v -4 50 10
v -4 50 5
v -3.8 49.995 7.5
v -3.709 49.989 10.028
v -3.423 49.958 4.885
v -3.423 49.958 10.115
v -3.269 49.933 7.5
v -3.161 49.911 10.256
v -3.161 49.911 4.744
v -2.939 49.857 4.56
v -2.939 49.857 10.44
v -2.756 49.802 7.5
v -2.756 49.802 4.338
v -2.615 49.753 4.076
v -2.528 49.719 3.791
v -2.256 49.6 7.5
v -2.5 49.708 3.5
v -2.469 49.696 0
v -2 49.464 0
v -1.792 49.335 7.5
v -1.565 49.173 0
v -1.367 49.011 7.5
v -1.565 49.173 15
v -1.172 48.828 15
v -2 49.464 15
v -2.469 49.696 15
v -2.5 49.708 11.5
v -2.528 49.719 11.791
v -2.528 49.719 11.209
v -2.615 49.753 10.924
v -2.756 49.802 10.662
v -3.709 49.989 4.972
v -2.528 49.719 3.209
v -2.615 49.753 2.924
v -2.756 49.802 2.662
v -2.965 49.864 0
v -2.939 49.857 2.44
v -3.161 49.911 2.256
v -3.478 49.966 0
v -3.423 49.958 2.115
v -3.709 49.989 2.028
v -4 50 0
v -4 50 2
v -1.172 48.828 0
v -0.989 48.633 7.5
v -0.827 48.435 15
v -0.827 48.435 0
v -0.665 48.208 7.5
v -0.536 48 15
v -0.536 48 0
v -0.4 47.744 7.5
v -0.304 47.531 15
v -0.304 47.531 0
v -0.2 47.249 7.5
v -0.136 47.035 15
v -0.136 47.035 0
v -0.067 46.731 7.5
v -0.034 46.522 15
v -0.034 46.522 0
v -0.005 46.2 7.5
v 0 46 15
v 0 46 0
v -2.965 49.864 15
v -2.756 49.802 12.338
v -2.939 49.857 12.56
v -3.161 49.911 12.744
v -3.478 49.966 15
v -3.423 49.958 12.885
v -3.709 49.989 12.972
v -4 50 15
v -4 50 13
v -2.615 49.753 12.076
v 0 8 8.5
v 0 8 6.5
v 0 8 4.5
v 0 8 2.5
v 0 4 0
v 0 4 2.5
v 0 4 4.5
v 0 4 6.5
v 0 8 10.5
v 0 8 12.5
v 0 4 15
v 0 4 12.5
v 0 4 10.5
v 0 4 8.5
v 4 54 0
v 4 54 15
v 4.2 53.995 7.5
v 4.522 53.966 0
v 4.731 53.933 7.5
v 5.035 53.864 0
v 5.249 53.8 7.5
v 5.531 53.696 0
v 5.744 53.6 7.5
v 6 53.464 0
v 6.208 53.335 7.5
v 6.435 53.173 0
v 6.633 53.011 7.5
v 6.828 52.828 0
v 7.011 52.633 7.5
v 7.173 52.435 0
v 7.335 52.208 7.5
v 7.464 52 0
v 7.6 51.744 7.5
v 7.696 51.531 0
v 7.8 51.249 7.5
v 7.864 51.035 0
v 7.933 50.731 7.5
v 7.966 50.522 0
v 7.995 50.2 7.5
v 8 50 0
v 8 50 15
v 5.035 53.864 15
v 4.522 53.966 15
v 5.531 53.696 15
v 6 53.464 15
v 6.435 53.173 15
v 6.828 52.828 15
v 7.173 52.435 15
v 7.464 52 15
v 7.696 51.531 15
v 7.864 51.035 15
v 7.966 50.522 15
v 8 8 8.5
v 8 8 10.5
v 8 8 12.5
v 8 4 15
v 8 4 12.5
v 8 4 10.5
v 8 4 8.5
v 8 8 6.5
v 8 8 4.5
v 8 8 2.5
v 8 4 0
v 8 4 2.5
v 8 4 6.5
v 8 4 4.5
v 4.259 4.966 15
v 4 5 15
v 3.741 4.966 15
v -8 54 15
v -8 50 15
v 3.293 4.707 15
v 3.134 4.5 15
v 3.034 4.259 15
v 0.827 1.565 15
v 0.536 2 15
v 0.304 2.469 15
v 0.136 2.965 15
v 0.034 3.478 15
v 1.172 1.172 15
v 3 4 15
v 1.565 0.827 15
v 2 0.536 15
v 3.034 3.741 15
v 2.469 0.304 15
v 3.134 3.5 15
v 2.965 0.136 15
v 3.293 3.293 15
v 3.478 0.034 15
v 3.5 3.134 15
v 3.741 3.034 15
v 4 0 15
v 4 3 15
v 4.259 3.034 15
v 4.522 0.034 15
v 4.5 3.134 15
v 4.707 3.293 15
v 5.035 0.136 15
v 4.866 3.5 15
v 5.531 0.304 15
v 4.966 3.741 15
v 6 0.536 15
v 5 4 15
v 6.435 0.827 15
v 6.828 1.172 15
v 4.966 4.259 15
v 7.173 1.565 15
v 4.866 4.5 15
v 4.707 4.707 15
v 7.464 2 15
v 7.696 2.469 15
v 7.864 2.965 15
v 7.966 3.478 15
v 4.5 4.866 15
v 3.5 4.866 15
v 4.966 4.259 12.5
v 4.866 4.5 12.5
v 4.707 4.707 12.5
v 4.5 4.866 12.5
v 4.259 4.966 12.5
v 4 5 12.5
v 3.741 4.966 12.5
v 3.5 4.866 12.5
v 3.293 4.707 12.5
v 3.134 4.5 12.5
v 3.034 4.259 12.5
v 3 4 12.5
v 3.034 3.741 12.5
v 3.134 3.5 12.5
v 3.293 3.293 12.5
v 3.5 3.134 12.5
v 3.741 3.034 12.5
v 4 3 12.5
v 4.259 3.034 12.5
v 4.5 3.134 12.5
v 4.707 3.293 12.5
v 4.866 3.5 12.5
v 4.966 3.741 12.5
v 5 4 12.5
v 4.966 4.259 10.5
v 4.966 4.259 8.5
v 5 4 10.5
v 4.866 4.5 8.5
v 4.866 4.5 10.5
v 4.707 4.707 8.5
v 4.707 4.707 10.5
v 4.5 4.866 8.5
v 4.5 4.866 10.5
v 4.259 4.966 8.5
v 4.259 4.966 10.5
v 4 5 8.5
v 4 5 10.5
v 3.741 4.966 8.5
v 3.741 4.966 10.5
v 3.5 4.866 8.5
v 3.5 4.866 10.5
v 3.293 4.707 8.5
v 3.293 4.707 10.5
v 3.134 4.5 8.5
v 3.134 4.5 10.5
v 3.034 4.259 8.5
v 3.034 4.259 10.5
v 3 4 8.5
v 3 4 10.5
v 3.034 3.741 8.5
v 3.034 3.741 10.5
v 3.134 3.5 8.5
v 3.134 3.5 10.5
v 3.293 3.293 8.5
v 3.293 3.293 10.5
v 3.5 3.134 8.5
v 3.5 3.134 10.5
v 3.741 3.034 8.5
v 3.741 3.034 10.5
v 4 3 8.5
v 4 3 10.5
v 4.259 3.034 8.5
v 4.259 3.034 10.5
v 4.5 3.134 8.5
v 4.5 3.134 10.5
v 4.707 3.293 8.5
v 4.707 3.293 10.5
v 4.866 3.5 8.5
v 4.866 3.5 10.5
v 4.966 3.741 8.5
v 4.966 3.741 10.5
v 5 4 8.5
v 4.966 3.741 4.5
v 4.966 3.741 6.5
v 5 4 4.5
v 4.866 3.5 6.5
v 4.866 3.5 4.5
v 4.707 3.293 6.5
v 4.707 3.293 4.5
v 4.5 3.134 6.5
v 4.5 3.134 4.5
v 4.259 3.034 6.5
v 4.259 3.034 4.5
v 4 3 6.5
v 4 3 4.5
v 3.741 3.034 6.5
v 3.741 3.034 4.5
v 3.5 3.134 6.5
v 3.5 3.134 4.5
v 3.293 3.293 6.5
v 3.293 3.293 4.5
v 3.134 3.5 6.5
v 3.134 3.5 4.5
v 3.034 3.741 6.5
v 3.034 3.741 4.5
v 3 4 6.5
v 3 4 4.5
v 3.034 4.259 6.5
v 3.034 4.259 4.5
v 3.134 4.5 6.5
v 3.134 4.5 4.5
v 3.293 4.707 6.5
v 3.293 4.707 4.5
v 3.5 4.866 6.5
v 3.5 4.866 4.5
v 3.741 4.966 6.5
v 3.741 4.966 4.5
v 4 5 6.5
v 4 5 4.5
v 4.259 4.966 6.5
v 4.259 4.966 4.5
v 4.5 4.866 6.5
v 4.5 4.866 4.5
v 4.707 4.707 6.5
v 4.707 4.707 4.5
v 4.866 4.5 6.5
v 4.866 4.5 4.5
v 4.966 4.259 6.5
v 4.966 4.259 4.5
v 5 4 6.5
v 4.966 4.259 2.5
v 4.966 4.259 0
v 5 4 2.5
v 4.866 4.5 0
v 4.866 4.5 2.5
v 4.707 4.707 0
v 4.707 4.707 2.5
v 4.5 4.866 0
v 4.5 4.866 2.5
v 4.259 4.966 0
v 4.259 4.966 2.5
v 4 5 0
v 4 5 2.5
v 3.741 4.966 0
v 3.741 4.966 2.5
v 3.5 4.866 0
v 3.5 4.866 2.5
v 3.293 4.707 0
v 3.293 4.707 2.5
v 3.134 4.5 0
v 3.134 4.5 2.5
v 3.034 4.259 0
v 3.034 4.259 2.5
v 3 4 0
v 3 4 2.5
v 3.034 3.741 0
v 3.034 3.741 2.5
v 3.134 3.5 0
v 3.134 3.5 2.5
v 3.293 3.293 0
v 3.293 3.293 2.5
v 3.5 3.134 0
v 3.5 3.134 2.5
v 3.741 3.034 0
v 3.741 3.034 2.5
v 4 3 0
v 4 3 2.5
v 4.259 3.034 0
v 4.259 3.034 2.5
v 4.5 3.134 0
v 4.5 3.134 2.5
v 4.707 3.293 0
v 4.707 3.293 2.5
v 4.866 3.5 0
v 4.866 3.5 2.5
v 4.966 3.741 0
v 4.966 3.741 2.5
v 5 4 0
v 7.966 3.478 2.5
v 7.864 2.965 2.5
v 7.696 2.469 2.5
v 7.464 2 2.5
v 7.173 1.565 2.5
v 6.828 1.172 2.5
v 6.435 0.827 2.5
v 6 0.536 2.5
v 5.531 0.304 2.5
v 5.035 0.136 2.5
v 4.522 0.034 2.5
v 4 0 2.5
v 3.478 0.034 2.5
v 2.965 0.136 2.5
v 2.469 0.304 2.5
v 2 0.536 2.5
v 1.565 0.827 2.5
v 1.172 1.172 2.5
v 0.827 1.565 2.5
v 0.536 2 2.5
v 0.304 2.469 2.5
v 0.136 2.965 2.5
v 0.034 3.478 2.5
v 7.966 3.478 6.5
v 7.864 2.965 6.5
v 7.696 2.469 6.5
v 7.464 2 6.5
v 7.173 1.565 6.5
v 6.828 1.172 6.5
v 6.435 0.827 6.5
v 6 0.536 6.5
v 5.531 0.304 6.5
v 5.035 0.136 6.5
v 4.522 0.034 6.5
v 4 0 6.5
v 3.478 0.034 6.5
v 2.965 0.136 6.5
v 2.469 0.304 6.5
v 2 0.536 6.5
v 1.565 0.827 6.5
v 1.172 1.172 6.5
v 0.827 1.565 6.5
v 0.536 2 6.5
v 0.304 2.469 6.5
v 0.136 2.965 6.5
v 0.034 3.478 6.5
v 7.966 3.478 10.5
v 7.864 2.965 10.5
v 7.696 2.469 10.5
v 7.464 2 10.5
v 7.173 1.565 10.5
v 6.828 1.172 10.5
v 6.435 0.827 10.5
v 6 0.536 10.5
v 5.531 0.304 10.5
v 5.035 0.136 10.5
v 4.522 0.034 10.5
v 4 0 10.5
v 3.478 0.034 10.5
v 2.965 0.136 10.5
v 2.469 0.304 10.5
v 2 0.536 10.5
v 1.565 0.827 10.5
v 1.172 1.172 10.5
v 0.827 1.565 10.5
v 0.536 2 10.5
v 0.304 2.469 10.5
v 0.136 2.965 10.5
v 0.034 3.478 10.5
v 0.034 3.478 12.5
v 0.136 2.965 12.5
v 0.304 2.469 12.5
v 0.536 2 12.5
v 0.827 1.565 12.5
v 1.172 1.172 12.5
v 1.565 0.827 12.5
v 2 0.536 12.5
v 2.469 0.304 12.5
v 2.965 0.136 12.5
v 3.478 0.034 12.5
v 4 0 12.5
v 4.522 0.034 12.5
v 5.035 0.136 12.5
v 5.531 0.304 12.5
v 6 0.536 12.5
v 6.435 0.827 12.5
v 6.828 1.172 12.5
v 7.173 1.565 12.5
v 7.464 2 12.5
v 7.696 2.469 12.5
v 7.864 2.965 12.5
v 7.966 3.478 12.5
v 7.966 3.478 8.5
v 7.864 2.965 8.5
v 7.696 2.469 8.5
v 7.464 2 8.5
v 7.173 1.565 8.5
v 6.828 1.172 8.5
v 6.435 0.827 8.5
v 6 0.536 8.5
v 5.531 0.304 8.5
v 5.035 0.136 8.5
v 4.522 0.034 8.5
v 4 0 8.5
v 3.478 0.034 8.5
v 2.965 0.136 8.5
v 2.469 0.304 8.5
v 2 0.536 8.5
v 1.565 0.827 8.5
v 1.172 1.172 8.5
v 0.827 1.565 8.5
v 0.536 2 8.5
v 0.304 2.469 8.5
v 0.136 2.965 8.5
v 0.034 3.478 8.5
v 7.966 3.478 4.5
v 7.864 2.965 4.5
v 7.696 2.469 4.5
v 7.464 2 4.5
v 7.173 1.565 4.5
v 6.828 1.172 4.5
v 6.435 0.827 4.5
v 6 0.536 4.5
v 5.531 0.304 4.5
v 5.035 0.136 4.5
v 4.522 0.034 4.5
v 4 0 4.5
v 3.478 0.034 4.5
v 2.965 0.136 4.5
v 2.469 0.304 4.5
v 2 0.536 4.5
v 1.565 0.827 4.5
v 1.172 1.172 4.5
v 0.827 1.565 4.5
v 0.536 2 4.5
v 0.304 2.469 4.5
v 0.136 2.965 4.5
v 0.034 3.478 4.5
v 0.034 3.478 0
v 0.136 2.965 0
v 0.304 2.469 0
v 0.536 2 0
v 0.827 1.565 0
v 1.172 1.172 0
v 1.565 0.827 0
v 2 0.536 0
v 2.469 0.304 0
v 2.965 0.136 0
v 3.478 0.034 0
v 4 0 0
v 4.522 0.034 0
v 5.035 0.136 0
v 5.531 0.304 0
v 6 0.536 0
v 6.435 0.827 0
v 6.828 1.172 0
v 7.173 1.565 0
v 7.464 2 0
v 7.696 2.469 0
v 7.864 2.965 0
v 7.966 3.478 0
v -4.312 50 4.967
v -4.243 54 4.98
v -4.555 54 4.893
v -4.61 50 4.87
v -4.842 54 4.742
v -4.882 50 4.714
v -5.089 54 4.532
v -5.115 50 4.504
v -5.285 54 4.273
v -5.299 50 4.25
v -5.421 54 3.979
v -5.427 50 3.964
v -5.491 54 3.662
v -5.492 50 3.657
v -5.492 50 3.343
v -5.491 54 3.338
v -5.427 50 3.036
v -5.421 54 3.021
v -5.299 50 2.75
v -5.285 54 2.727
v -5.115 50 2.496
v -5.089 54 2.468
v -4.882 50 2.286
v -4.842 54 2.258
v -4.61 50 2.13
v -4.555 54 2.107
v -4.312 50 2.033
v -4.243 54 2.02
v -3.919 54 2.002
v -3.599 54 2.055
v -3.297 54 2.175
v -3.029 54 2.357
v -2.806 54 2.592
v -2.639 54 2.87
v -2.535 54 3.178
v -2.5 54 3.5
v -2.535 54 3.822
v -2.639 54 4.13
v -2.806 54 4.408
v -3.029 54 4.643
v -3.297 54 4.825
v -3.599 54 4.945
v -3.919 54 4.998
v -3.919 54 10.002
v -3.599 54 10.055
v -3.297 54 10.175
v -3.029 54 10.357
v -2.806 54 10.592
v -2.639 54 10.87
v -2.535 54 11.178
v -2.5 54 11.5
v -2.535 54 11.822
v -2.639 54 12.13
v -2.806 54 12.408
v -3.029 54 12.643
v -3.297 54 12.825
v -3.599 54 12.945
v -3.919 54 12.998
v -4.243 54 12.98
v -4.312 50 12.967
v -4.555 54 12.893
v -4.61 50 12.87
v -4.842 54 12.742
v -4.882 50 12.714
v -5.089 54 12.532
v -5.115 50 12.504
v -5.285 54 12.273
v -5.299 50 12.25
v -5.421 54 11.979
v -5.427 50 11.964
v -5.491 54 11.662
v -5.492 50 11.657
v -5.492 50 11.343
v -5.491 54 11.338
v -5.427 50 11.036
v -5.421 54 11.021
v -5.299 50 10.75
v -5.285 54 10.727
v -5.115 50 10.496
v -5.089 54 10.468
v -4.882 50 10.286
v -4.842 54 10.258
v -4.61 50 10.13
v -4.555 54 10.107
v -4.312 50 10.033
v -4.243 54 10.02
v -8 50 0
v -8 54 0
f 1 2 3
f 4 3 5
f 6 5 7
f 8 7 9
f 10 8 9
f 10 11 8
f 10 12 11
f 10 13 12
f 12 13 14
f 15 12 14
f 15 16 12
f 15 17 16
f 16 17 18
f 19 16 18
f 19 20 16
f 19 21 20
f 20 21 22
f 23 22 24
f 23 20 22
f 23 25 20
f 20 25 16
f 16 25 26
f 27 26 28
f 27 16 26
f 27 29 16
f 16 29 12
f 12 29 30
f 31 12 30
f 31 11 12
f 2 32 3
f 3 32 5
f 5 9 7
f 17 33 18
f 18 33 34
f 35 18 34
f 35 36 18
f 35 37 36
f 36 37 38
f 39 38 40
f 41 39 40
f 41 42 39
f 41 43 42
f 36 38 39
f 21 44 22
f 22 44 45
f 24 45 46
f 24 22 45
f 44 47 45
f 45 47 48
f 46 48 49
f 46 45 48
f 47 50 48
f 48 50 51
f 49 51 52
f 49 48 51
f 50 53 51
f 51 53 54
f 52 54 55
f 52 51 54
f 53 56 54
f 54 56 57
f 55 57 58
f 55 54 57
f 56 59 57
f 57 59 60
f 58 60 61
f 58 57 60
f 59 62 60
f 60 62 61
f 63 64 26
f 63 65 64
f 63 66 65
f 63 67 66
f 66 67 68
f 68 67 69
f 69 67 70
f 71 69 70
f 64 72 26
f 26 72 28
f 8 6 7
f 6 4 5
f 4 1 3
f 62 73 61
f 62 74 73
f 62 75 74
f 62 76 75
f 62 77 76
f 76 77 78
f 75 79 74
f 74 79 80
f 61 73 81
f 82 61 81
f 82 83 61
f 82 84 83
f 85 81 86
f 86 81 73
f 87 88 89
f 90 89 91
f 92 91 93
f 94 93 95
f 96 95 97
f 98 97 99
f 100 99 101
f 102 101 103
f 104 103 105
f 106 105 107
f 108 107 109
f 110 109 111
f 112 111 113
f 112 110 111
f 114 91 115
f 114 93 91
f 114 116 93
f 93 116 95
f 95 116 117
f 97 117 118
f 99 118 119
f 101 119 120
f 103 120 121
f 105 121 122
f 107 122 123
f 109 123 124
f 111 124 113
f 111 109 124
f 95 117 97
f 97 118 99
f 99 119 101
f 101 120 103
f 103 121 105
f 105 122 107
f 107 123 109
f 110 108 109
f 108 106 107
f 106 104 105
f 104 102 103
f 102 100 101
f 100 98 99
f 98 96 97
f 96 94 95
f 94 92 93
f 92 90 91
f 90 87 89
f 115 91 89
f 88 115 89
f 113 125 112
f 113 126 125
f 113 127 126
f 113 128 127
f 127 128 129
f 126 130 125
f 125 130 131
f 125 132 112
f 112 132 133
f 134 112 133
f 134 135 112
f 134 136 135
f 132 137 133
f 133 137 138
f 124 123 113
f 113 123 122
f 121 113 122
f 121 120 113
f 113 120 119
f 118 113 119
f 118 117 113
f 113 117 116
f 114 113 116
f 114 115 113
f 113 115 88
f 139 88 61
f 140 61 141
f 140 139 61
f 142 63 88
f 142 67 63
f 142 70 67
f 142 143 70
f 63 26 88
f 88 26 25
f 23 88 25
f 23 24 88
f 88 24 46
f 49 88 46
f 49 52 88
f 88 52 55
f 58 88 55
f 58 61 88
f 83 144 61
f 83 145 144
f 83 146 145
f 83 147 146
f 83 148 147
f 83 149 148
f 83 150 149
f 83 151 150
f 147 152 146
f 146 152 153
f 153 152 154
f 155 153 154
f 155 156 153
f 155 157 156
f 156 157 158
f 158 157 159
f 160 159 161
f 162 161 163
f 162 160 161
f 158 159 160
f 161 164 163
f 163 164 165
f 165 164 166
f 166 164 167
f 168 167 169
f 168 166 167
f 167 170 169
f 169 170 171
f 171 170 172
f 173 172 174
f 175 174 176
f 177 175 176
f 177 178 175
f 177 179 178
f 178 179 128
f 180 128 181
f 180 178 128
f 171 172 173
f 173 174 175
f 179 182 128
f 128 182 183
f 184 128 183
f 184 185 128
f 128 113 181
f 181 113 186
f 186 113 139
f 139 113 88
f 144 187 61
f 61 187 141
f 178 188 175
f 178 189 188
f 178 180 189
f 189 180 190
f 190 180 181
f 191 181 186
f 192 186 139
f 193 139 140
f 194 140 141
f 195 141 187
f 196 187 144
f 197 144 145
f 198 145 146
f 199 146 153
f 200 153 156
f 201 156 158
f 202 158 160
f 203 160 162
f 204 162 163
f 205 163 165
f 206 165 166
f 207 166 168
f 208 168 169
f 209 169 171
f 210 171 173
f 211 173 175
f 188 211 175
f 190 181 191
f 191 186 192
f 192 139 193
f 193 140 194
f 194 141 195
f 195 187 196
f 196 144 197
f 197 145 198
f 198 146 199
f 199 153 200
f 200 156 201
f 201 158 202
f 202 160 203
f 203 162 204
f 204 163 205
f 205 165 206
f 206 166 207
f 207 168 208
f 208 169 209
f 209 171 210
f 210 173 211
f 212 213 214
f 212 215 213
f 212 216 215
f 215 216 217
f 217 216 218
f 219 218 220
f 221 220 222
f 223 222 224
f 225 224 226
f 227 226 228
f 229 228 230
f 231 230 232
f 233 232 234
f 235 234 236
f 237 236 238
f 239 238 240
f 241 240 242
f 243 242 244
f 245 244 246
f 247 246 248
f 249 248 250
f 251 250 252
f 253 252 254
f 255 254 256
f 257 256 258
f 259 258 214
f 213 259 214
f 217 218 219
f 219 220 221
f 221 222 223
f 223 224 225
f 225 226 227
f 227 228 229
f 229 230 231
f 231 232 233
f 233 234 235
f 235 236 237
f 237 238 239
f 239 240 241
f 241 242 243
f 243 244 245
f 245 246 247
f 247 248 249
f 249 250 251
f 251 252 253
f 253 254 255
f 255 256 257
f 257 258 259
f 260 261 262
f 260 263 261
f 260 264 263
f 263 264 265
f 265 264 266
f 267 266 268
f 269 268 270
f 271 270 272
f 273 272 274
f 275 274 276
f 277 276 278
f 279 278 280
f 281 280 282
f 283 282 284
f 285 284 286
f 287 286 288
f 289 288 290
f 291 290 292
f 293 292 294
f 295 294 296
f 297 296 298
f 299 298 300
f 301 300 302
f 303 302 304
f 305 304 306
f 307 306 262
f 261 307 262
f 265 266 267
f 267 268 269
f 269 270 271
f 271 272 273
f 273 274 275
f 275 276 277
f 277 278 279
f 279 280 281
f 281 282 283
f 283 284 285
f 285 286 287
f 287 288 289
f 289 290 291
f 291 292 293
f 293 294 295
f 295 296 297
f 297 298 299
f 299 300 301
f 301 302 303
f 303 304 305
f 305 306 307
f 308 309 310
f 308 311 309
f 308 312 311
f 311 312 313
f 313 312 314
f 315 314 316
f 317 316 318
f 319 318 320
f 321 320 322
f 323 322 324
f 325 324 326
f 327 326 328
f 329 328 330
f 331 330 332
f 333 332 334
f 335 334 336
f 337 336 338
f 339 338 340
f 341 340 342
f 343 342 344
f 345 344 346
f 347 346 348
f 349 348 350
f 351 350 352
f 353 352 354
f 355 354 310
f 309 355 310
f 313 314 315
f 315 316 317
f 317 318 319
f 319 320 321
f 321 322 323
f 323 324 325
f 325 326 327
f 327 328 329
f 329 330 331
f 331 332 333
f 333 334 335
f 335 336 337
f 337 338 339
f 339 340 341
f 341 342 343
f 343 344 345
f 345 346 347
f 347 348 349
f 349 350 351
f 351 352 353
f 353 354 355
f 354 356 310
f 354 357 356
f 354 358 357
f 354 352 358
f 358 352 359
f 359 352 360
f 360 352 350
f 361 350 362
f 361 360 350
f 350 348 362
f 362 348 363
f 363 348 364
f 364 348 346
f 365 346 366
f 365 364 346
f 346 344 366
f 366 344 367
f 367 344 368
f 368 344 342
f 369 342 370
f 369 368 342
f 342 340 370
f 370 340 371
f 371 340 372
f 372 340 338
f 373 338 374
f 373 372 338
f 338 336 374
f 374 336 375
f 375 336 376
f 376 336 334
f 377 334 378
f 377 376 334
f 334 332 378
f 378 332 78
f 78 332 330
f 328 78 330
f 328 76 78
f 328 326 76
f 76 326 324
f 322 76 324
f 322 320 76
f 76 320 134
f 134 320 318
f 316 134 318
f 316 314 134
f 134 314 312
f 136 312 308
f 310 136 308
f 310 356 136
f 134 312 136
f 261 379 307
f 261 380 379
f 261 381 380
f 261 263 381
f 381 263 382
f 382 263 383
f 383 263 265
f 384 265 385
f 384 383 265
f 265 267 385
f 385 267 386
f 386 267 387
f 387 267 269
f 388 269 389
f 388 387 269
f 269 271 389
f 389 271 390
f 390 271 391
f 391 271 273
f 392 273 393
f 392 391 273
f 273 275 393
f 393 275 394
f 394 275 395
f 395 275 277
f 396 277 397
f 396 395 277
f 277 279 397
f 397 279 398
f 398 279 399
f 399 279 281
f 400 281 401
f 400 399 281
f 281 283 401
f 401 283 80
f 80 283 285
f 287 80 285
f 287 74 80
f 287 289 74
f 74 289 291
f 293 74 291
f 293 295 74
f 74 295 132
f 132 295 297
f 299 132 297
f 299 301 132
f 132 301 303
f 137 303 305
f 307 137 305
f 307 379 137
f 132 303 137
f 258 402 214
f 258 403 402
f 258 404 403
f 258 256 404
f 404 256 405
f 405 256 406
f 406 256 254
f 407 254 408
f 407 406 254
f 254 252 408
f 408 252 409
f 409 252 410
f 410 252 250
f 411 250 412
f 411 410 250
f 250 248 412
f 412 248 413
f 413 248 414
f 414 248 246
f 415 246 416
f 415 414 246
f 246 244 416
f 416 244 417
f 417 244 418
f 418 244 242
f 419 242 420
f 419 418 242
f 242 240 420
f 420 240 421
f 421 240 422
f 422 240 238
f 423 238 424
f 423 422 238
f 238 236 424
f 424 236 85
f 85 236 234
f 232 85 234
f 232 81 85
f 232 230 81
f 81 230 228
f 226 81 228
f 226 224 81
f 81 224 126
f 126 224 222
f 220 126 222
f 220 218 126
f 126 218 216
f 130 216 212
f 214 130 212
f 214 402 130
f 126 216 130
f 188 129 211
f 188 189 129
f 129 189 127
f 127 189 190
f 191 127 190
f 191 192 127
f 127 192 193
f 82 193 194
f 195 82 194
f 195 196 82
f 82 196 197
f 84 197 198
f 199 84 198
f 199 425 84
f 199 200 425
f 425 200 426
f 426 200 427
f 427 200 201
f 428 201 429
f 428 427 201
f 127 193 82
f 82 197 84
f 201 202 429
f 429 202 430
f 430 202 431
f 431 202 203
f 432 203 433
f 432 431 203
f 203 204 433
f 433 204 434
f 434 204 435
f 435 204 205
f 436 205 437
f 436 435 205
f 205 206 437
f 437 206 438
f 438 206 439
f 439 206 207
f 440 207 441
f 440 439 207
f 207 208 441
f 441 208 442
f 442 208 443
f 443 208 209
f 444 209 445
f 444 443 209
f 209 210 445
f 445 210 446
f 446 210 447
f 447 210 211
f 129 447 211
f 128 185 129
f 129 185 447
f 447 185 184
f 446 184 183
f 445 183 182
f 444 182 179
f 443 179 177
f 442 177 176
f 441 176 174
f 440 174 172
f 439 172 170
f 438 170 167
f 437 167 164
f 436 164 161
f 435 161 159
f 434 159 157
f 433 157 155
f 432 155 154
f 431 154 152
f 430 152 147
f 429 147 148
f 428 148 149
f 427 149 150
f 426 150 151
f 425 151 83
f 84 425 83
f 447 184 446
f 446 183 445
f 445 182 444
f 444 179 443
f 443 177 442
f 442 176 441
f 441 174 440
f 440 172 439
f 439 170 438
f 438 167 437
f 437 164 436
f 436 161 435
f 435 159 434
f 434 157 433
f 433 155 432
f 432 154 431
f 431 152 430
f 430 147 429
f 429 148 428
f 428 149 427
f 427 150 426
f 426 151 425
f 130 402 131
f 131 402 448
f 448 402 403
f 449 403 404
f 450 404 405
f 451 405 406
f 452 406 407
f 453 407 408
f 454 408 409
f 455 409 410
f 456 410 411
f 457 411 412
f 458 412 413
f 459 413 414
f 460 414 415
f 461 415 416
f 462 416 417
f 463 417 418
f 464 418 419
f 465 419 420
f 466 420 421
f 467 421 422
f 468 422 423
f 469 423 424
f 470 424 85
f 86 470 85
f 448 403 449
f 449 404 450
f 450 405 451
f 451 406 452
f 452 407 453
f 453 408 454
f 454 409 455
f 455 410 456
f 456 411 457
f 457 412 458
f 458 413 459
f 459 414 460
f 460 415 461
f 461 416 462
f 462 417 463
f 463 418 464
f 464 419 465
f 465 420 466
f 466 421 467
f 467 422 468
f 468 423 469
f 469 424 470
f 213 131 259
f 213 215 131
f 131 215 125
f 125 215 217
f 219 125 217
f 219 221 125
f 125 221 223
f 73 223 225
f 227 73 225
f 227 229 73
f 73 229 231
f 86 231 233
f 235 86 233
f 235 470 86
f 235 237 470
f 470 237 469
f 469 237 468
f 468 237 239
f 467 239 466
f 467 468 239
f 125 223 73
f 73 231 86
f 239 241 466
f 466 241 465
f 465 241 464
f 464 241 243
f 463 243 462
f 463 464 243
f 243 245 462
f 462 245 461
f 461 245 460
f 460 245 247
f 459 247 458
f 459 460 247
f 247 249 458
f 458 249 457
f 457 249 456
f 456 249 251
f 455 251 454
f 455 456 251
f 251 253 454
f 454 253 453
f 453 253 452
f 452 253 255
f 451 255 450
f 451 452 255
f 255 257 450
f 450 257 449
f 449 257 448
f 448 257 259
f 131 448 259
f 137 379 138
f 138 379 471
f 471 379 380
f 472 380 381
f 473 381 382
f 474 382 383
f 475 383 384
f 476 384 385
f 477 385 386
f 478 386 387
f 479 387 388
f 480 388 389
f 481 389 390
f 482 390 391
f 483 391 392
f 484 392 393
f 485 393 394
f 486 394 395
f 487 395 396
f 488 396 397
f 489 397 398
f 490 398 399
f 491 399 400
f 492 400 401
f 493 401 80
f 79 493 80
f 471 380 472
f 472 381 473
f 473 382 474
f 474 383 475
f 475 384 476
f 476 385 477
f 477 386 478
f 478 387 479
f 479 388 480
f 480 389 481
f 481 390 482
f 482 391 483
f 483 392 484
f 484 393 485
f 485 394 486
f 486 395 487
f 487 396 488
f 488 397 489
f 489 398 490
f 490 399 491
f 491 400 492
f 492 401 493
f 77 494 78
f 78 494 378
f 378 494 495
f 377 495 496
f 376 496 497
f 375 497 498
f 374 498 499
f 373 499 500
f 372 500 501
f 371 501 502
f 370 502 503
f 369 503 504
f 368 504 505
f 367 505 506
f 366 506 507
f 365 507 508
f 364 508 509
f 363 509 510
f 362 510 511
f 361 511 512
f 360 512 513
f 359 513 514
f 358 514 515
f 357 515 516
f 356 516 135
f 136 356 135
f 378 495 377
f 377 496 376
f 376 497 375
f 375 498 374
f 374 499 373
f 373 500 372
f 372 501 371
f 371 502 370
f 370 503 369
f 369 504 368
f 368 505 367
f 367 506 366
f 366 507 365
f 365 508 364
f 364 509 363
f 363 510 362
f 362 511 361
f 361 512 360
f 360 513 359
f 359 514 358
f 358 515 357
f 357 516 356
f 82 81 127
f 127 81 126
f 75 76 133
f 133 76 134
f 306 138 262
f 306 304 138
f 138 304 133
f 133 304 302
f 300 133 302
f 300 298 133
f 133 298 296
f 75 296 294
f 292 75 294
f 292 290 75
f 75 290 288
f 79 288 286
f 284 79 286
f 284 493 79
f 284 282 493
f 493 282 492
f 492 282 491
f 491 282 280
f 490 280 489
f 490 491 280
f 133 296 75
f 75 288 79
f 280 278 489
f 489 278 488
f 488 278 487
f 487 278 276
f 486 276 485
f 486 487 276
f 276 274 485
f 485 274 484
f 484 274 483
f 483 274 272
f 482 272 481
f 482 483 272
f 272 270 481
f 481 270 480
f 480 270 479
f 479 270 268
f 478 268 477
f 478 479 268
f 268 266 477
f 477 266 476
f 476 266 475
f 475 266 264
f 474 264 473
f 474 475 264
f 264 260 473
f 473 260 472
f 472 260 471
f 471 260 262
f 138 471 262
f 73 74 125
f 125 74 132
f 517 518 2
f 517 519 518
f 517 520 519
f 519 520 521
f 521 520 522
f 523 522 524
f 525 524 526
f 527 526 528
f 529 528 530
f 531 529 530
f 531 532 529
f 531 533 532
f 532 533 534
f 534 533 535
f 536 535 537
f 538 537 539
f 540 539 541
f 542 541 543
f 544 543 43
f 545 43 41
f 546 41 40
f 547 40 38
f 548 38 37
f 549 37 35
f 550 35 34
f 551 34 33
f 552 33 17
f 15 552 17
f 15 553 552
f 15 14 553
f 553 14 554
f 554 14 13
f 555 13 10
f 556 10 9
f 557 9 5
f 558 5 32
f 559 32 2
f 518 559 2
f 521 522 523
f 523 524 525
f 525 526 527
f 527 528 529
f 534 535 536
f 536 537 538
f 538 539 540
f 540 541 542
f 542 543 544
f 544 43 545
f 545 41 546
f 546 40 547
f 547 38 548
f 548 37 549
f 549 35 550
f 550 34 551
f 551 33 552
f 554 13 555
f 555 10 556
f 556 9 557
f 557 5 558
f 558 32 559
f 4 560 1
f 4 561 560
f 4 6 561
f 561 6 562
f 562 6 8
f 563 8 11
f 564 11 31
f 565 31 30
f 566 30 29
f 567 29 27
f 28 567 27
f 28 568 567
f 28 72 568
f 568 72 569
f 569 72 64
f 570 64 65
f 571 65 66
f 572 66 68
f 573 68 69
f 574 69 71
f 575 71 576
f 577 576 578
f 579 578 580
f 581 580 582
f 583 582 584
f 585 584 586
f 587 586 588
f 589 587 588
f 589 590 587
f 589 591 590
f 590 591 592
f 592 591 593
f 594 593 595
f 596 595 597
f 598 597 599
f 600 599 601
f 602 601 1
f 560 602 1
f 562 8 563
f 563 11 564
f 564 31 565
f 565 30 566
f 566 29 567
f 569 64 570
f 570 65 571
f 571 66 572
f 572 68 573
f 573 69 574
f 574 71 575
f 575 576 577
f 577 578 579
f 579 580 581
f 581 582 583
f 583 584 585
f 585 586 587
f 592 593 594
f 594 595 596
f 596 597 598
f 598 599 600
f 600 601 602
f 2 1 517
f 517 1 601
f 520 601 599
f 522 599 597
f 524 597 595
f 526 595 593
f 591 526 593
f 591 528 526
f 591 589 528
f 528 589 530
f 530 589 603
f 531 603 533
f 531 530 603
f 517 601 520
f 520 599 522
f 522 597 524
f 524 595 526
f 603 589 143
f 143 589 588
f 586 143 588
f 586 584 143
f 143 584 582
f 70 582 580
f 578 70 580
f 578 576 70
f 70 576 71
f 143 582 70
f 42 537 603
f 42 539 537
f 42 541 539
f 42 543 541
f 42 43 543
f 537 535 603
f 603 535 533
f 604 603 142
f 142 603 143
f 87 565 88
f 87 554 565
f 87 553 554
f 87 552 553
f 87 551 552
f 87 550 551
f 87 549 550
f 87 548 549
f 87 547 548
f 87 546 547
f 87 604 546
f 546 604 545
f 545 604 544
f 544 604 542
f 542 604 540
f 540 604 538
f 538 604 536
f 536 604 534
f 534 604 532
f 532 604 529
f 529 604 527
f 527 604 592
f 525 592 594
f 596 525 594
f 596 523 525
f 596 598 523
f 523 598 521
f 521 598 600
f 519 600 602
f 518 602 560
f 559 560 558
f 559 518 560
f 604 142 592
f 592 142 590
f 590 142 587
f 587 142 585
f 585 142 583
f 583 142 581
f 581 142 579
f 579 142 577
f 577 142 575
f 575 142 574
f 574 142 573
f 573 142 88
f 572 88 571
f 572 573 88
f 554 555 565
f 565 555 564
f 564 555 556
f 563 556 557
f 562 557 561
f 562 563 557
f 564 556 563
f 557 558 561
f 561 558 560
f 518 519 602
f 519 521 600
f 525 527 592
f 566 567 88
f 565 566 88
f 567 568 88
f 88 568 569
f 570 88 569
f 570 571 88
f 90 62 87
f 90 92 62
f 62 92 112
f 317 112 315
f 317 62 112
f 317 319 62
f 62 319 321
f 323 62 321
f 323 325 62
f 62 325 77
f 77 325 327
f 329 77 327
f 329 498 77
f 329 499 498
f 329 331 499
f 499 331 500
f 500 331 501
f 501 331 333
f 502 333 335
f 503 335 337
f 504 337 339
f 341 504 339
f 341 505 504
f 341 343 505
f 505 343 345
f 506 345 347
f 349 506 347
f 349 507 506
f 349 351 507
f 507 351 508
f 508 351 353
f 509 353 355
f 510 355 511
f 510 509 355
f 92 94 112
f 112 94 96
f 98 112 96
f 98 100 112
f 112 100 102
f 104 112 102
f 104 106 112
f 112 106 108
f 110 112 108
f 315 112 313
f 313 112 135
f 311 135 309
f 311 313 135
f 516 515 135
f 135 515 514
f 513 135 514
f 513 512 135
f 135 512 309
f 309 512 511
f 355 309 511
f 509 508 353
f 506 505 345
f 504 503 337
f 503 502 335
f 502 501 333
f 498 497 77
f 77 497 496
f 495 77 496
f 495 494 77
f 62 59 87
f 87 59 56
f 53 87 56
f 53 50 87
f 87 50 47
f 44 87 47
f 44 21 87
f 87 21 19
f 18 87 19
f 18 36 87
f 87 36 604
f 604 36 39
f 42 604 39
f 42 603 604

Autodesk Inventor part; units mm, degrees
ref_plane "YZ Plane" through (0, 0, 0) normal (1, 0, 0) x (0, 1, 0)
ref_plane "XZ Plane" through (0, 0, 0) normal (0, 1, 0) x (-1, 0, 0)
ref_plane "XY Plane" through (0, 0, 0) normal (0, 0, 1) x (1, 0, 0)
sketch "Sketch1" plane through (0, 0, 0) normal (0, 0, 1) x (1, 0, 0)
  line L0 (0, 0) -> (0, 50)
  line L1 (0, 50) -> (-8, 50)
  line L2 (0, 0) -> (8, 0)
  line L3 (8, 0) -> (8, 54)
  line L4 (8, 54) -> (-8, 54)
  line L5 (8, 54) -> (-8, 54)
  line L6 (-8, 54) -> (-8, 50)
  dimension "d0" = 50
  dimension "d3" = 8
  dimension "d7" = 54
  dimension "d28" = 16
extrude "Extrusion1" add sketch "Sketch1" along normal blind 15
sketch "Sketch2" plane through (-8, 54, 0) normal (0, 1, 0) x (1, 0, 0)
  line L0 (16, 0) -> (0, 0) construction
  line L1 (1.2766, 0) -> (1.2766, -15) construction
  line L2 (16, -15) -> (0, -15) construction
  line L3 (1.2766, 0) -> (1.2766, -2.75) construction
  line L4 (1.2766, -15) -> (1.2766, -12.25) construction
  line L5 (1.2766, 0) -> (1.2766, -3.5) construction
  line L6 (1.2766, -15) -> (1.2766, -11.5) construction
  line L7 (8, 0) -> (0, 0) construction
  line L8 (0, 0) -> (0, -15) construction
  line L9 (4, 0) -> (4, -15) construction
  line L10 (4, -15) -> (4, -11.5) construction
  line L11 (4, 0) -> (4, -3.5) construction
  circle A0 centre (4, -3.5) radius 1.5
  circle A1 centre (4, -11.5) radius 1.5
  dimension "d12" = 3.5
  dimension "d13" = 3.5
  dimension "d29" = 3.5
  dimension "d30" = 3.5
  dimension "d31" = 3
  dimension "d32" = 3
extrude "Extrusion2" cut sketch "Sketch2" against normal blind 8.75
sketch "Sketch3" plane through (8, 0, 0) normal (1, 0, 0) x (0, 0, -1)
  line L0 (0, 0) -> (-15, 0) construction
  line L1 (-7.5, 0) -> (-7.5, 8) construction
  line L2 (-7.5, 8) -> (-6.5, 8)
  line L3 (-6.5, 8) -> (-8.5, 8)
  line L4 (-8.5, 8) -> (-8.5, 0)
  line L5 (-6.5, 8) -> (-6.5, 0)
  line L6 (-6.5, 0) -> (-4.5, 0)
  line L7 (-4.5, 0) -> (-4.5, 8)
  line L8 (-4.5, 8) -> (-2.5, 8)
  line L9 (-2.5, 8) -> (-2.5, 0)
  line L10 (-8.5, 0) -> (-10.5, 0)
  line L11 (-10.5, 0) -> (-10.5, 8)
  line L12 (-10.5, 8) -> (-12.5, 8)
  line L13 (-12.5, 8) -> (-12.5, 0)
  line L14 (-2.5, 0) -> (0, 0)
  line L15 (-12.5, 0) -> (-15, 0)
  line L16 (-15, 0) -> (-15, 10)
  line L17 (-15, 50) -> (-15, 0) projected
  line L18 (-15, 10) -> (0, 10)
  line L19 (0, 50) -> (0, 0) projected
  line L20 (0, 0) -> (0, 10)
  line L21 (-15, 0) -> (0, 0)
  dimension "d18" = 8
  dimension "d19" = 1
  dimension "d20" = 2
  dimension "d21" = 2
  dimension "d22" = 2
  dimension "d23" = 2
  dimension "d24" = 2
  dimension "d25" = 10
extrude "Extrusion3" cut sketch "Sketch3" against normal blind 10.25 contours L2 L5 L21 L4 L3 | L7 L8 L9 L21 | L21 L13 L12 L11
fillet "Fillet1" radius 4 8 edges at (8, 0, 1.25) (8, 0, 5.5) (8, 0, 9.5) (8, 0, 13.75) (0, 0, 13.75) (0, 0, 9.5) (0, 0, 5.5) (0, 0, 1.25)
sketch "Sketch4" plane through (0, 0, 15) normal (0, 0, 1) x (1, 0, 0)
  line L0 (0, 4) -> (8, 4) construction
  circle A0 centre (4, 4) radius 1
  point P0 (0, 0)
  dimension "d34" = 2
extrude "Extrusion4" cut sketch "Sketch4" against normal blind 21
fillet "Fillet2" radius 4 2 edges at (8, 54, 7.5) (0, 50, 7.5)
properties part number "WebcamArm"
